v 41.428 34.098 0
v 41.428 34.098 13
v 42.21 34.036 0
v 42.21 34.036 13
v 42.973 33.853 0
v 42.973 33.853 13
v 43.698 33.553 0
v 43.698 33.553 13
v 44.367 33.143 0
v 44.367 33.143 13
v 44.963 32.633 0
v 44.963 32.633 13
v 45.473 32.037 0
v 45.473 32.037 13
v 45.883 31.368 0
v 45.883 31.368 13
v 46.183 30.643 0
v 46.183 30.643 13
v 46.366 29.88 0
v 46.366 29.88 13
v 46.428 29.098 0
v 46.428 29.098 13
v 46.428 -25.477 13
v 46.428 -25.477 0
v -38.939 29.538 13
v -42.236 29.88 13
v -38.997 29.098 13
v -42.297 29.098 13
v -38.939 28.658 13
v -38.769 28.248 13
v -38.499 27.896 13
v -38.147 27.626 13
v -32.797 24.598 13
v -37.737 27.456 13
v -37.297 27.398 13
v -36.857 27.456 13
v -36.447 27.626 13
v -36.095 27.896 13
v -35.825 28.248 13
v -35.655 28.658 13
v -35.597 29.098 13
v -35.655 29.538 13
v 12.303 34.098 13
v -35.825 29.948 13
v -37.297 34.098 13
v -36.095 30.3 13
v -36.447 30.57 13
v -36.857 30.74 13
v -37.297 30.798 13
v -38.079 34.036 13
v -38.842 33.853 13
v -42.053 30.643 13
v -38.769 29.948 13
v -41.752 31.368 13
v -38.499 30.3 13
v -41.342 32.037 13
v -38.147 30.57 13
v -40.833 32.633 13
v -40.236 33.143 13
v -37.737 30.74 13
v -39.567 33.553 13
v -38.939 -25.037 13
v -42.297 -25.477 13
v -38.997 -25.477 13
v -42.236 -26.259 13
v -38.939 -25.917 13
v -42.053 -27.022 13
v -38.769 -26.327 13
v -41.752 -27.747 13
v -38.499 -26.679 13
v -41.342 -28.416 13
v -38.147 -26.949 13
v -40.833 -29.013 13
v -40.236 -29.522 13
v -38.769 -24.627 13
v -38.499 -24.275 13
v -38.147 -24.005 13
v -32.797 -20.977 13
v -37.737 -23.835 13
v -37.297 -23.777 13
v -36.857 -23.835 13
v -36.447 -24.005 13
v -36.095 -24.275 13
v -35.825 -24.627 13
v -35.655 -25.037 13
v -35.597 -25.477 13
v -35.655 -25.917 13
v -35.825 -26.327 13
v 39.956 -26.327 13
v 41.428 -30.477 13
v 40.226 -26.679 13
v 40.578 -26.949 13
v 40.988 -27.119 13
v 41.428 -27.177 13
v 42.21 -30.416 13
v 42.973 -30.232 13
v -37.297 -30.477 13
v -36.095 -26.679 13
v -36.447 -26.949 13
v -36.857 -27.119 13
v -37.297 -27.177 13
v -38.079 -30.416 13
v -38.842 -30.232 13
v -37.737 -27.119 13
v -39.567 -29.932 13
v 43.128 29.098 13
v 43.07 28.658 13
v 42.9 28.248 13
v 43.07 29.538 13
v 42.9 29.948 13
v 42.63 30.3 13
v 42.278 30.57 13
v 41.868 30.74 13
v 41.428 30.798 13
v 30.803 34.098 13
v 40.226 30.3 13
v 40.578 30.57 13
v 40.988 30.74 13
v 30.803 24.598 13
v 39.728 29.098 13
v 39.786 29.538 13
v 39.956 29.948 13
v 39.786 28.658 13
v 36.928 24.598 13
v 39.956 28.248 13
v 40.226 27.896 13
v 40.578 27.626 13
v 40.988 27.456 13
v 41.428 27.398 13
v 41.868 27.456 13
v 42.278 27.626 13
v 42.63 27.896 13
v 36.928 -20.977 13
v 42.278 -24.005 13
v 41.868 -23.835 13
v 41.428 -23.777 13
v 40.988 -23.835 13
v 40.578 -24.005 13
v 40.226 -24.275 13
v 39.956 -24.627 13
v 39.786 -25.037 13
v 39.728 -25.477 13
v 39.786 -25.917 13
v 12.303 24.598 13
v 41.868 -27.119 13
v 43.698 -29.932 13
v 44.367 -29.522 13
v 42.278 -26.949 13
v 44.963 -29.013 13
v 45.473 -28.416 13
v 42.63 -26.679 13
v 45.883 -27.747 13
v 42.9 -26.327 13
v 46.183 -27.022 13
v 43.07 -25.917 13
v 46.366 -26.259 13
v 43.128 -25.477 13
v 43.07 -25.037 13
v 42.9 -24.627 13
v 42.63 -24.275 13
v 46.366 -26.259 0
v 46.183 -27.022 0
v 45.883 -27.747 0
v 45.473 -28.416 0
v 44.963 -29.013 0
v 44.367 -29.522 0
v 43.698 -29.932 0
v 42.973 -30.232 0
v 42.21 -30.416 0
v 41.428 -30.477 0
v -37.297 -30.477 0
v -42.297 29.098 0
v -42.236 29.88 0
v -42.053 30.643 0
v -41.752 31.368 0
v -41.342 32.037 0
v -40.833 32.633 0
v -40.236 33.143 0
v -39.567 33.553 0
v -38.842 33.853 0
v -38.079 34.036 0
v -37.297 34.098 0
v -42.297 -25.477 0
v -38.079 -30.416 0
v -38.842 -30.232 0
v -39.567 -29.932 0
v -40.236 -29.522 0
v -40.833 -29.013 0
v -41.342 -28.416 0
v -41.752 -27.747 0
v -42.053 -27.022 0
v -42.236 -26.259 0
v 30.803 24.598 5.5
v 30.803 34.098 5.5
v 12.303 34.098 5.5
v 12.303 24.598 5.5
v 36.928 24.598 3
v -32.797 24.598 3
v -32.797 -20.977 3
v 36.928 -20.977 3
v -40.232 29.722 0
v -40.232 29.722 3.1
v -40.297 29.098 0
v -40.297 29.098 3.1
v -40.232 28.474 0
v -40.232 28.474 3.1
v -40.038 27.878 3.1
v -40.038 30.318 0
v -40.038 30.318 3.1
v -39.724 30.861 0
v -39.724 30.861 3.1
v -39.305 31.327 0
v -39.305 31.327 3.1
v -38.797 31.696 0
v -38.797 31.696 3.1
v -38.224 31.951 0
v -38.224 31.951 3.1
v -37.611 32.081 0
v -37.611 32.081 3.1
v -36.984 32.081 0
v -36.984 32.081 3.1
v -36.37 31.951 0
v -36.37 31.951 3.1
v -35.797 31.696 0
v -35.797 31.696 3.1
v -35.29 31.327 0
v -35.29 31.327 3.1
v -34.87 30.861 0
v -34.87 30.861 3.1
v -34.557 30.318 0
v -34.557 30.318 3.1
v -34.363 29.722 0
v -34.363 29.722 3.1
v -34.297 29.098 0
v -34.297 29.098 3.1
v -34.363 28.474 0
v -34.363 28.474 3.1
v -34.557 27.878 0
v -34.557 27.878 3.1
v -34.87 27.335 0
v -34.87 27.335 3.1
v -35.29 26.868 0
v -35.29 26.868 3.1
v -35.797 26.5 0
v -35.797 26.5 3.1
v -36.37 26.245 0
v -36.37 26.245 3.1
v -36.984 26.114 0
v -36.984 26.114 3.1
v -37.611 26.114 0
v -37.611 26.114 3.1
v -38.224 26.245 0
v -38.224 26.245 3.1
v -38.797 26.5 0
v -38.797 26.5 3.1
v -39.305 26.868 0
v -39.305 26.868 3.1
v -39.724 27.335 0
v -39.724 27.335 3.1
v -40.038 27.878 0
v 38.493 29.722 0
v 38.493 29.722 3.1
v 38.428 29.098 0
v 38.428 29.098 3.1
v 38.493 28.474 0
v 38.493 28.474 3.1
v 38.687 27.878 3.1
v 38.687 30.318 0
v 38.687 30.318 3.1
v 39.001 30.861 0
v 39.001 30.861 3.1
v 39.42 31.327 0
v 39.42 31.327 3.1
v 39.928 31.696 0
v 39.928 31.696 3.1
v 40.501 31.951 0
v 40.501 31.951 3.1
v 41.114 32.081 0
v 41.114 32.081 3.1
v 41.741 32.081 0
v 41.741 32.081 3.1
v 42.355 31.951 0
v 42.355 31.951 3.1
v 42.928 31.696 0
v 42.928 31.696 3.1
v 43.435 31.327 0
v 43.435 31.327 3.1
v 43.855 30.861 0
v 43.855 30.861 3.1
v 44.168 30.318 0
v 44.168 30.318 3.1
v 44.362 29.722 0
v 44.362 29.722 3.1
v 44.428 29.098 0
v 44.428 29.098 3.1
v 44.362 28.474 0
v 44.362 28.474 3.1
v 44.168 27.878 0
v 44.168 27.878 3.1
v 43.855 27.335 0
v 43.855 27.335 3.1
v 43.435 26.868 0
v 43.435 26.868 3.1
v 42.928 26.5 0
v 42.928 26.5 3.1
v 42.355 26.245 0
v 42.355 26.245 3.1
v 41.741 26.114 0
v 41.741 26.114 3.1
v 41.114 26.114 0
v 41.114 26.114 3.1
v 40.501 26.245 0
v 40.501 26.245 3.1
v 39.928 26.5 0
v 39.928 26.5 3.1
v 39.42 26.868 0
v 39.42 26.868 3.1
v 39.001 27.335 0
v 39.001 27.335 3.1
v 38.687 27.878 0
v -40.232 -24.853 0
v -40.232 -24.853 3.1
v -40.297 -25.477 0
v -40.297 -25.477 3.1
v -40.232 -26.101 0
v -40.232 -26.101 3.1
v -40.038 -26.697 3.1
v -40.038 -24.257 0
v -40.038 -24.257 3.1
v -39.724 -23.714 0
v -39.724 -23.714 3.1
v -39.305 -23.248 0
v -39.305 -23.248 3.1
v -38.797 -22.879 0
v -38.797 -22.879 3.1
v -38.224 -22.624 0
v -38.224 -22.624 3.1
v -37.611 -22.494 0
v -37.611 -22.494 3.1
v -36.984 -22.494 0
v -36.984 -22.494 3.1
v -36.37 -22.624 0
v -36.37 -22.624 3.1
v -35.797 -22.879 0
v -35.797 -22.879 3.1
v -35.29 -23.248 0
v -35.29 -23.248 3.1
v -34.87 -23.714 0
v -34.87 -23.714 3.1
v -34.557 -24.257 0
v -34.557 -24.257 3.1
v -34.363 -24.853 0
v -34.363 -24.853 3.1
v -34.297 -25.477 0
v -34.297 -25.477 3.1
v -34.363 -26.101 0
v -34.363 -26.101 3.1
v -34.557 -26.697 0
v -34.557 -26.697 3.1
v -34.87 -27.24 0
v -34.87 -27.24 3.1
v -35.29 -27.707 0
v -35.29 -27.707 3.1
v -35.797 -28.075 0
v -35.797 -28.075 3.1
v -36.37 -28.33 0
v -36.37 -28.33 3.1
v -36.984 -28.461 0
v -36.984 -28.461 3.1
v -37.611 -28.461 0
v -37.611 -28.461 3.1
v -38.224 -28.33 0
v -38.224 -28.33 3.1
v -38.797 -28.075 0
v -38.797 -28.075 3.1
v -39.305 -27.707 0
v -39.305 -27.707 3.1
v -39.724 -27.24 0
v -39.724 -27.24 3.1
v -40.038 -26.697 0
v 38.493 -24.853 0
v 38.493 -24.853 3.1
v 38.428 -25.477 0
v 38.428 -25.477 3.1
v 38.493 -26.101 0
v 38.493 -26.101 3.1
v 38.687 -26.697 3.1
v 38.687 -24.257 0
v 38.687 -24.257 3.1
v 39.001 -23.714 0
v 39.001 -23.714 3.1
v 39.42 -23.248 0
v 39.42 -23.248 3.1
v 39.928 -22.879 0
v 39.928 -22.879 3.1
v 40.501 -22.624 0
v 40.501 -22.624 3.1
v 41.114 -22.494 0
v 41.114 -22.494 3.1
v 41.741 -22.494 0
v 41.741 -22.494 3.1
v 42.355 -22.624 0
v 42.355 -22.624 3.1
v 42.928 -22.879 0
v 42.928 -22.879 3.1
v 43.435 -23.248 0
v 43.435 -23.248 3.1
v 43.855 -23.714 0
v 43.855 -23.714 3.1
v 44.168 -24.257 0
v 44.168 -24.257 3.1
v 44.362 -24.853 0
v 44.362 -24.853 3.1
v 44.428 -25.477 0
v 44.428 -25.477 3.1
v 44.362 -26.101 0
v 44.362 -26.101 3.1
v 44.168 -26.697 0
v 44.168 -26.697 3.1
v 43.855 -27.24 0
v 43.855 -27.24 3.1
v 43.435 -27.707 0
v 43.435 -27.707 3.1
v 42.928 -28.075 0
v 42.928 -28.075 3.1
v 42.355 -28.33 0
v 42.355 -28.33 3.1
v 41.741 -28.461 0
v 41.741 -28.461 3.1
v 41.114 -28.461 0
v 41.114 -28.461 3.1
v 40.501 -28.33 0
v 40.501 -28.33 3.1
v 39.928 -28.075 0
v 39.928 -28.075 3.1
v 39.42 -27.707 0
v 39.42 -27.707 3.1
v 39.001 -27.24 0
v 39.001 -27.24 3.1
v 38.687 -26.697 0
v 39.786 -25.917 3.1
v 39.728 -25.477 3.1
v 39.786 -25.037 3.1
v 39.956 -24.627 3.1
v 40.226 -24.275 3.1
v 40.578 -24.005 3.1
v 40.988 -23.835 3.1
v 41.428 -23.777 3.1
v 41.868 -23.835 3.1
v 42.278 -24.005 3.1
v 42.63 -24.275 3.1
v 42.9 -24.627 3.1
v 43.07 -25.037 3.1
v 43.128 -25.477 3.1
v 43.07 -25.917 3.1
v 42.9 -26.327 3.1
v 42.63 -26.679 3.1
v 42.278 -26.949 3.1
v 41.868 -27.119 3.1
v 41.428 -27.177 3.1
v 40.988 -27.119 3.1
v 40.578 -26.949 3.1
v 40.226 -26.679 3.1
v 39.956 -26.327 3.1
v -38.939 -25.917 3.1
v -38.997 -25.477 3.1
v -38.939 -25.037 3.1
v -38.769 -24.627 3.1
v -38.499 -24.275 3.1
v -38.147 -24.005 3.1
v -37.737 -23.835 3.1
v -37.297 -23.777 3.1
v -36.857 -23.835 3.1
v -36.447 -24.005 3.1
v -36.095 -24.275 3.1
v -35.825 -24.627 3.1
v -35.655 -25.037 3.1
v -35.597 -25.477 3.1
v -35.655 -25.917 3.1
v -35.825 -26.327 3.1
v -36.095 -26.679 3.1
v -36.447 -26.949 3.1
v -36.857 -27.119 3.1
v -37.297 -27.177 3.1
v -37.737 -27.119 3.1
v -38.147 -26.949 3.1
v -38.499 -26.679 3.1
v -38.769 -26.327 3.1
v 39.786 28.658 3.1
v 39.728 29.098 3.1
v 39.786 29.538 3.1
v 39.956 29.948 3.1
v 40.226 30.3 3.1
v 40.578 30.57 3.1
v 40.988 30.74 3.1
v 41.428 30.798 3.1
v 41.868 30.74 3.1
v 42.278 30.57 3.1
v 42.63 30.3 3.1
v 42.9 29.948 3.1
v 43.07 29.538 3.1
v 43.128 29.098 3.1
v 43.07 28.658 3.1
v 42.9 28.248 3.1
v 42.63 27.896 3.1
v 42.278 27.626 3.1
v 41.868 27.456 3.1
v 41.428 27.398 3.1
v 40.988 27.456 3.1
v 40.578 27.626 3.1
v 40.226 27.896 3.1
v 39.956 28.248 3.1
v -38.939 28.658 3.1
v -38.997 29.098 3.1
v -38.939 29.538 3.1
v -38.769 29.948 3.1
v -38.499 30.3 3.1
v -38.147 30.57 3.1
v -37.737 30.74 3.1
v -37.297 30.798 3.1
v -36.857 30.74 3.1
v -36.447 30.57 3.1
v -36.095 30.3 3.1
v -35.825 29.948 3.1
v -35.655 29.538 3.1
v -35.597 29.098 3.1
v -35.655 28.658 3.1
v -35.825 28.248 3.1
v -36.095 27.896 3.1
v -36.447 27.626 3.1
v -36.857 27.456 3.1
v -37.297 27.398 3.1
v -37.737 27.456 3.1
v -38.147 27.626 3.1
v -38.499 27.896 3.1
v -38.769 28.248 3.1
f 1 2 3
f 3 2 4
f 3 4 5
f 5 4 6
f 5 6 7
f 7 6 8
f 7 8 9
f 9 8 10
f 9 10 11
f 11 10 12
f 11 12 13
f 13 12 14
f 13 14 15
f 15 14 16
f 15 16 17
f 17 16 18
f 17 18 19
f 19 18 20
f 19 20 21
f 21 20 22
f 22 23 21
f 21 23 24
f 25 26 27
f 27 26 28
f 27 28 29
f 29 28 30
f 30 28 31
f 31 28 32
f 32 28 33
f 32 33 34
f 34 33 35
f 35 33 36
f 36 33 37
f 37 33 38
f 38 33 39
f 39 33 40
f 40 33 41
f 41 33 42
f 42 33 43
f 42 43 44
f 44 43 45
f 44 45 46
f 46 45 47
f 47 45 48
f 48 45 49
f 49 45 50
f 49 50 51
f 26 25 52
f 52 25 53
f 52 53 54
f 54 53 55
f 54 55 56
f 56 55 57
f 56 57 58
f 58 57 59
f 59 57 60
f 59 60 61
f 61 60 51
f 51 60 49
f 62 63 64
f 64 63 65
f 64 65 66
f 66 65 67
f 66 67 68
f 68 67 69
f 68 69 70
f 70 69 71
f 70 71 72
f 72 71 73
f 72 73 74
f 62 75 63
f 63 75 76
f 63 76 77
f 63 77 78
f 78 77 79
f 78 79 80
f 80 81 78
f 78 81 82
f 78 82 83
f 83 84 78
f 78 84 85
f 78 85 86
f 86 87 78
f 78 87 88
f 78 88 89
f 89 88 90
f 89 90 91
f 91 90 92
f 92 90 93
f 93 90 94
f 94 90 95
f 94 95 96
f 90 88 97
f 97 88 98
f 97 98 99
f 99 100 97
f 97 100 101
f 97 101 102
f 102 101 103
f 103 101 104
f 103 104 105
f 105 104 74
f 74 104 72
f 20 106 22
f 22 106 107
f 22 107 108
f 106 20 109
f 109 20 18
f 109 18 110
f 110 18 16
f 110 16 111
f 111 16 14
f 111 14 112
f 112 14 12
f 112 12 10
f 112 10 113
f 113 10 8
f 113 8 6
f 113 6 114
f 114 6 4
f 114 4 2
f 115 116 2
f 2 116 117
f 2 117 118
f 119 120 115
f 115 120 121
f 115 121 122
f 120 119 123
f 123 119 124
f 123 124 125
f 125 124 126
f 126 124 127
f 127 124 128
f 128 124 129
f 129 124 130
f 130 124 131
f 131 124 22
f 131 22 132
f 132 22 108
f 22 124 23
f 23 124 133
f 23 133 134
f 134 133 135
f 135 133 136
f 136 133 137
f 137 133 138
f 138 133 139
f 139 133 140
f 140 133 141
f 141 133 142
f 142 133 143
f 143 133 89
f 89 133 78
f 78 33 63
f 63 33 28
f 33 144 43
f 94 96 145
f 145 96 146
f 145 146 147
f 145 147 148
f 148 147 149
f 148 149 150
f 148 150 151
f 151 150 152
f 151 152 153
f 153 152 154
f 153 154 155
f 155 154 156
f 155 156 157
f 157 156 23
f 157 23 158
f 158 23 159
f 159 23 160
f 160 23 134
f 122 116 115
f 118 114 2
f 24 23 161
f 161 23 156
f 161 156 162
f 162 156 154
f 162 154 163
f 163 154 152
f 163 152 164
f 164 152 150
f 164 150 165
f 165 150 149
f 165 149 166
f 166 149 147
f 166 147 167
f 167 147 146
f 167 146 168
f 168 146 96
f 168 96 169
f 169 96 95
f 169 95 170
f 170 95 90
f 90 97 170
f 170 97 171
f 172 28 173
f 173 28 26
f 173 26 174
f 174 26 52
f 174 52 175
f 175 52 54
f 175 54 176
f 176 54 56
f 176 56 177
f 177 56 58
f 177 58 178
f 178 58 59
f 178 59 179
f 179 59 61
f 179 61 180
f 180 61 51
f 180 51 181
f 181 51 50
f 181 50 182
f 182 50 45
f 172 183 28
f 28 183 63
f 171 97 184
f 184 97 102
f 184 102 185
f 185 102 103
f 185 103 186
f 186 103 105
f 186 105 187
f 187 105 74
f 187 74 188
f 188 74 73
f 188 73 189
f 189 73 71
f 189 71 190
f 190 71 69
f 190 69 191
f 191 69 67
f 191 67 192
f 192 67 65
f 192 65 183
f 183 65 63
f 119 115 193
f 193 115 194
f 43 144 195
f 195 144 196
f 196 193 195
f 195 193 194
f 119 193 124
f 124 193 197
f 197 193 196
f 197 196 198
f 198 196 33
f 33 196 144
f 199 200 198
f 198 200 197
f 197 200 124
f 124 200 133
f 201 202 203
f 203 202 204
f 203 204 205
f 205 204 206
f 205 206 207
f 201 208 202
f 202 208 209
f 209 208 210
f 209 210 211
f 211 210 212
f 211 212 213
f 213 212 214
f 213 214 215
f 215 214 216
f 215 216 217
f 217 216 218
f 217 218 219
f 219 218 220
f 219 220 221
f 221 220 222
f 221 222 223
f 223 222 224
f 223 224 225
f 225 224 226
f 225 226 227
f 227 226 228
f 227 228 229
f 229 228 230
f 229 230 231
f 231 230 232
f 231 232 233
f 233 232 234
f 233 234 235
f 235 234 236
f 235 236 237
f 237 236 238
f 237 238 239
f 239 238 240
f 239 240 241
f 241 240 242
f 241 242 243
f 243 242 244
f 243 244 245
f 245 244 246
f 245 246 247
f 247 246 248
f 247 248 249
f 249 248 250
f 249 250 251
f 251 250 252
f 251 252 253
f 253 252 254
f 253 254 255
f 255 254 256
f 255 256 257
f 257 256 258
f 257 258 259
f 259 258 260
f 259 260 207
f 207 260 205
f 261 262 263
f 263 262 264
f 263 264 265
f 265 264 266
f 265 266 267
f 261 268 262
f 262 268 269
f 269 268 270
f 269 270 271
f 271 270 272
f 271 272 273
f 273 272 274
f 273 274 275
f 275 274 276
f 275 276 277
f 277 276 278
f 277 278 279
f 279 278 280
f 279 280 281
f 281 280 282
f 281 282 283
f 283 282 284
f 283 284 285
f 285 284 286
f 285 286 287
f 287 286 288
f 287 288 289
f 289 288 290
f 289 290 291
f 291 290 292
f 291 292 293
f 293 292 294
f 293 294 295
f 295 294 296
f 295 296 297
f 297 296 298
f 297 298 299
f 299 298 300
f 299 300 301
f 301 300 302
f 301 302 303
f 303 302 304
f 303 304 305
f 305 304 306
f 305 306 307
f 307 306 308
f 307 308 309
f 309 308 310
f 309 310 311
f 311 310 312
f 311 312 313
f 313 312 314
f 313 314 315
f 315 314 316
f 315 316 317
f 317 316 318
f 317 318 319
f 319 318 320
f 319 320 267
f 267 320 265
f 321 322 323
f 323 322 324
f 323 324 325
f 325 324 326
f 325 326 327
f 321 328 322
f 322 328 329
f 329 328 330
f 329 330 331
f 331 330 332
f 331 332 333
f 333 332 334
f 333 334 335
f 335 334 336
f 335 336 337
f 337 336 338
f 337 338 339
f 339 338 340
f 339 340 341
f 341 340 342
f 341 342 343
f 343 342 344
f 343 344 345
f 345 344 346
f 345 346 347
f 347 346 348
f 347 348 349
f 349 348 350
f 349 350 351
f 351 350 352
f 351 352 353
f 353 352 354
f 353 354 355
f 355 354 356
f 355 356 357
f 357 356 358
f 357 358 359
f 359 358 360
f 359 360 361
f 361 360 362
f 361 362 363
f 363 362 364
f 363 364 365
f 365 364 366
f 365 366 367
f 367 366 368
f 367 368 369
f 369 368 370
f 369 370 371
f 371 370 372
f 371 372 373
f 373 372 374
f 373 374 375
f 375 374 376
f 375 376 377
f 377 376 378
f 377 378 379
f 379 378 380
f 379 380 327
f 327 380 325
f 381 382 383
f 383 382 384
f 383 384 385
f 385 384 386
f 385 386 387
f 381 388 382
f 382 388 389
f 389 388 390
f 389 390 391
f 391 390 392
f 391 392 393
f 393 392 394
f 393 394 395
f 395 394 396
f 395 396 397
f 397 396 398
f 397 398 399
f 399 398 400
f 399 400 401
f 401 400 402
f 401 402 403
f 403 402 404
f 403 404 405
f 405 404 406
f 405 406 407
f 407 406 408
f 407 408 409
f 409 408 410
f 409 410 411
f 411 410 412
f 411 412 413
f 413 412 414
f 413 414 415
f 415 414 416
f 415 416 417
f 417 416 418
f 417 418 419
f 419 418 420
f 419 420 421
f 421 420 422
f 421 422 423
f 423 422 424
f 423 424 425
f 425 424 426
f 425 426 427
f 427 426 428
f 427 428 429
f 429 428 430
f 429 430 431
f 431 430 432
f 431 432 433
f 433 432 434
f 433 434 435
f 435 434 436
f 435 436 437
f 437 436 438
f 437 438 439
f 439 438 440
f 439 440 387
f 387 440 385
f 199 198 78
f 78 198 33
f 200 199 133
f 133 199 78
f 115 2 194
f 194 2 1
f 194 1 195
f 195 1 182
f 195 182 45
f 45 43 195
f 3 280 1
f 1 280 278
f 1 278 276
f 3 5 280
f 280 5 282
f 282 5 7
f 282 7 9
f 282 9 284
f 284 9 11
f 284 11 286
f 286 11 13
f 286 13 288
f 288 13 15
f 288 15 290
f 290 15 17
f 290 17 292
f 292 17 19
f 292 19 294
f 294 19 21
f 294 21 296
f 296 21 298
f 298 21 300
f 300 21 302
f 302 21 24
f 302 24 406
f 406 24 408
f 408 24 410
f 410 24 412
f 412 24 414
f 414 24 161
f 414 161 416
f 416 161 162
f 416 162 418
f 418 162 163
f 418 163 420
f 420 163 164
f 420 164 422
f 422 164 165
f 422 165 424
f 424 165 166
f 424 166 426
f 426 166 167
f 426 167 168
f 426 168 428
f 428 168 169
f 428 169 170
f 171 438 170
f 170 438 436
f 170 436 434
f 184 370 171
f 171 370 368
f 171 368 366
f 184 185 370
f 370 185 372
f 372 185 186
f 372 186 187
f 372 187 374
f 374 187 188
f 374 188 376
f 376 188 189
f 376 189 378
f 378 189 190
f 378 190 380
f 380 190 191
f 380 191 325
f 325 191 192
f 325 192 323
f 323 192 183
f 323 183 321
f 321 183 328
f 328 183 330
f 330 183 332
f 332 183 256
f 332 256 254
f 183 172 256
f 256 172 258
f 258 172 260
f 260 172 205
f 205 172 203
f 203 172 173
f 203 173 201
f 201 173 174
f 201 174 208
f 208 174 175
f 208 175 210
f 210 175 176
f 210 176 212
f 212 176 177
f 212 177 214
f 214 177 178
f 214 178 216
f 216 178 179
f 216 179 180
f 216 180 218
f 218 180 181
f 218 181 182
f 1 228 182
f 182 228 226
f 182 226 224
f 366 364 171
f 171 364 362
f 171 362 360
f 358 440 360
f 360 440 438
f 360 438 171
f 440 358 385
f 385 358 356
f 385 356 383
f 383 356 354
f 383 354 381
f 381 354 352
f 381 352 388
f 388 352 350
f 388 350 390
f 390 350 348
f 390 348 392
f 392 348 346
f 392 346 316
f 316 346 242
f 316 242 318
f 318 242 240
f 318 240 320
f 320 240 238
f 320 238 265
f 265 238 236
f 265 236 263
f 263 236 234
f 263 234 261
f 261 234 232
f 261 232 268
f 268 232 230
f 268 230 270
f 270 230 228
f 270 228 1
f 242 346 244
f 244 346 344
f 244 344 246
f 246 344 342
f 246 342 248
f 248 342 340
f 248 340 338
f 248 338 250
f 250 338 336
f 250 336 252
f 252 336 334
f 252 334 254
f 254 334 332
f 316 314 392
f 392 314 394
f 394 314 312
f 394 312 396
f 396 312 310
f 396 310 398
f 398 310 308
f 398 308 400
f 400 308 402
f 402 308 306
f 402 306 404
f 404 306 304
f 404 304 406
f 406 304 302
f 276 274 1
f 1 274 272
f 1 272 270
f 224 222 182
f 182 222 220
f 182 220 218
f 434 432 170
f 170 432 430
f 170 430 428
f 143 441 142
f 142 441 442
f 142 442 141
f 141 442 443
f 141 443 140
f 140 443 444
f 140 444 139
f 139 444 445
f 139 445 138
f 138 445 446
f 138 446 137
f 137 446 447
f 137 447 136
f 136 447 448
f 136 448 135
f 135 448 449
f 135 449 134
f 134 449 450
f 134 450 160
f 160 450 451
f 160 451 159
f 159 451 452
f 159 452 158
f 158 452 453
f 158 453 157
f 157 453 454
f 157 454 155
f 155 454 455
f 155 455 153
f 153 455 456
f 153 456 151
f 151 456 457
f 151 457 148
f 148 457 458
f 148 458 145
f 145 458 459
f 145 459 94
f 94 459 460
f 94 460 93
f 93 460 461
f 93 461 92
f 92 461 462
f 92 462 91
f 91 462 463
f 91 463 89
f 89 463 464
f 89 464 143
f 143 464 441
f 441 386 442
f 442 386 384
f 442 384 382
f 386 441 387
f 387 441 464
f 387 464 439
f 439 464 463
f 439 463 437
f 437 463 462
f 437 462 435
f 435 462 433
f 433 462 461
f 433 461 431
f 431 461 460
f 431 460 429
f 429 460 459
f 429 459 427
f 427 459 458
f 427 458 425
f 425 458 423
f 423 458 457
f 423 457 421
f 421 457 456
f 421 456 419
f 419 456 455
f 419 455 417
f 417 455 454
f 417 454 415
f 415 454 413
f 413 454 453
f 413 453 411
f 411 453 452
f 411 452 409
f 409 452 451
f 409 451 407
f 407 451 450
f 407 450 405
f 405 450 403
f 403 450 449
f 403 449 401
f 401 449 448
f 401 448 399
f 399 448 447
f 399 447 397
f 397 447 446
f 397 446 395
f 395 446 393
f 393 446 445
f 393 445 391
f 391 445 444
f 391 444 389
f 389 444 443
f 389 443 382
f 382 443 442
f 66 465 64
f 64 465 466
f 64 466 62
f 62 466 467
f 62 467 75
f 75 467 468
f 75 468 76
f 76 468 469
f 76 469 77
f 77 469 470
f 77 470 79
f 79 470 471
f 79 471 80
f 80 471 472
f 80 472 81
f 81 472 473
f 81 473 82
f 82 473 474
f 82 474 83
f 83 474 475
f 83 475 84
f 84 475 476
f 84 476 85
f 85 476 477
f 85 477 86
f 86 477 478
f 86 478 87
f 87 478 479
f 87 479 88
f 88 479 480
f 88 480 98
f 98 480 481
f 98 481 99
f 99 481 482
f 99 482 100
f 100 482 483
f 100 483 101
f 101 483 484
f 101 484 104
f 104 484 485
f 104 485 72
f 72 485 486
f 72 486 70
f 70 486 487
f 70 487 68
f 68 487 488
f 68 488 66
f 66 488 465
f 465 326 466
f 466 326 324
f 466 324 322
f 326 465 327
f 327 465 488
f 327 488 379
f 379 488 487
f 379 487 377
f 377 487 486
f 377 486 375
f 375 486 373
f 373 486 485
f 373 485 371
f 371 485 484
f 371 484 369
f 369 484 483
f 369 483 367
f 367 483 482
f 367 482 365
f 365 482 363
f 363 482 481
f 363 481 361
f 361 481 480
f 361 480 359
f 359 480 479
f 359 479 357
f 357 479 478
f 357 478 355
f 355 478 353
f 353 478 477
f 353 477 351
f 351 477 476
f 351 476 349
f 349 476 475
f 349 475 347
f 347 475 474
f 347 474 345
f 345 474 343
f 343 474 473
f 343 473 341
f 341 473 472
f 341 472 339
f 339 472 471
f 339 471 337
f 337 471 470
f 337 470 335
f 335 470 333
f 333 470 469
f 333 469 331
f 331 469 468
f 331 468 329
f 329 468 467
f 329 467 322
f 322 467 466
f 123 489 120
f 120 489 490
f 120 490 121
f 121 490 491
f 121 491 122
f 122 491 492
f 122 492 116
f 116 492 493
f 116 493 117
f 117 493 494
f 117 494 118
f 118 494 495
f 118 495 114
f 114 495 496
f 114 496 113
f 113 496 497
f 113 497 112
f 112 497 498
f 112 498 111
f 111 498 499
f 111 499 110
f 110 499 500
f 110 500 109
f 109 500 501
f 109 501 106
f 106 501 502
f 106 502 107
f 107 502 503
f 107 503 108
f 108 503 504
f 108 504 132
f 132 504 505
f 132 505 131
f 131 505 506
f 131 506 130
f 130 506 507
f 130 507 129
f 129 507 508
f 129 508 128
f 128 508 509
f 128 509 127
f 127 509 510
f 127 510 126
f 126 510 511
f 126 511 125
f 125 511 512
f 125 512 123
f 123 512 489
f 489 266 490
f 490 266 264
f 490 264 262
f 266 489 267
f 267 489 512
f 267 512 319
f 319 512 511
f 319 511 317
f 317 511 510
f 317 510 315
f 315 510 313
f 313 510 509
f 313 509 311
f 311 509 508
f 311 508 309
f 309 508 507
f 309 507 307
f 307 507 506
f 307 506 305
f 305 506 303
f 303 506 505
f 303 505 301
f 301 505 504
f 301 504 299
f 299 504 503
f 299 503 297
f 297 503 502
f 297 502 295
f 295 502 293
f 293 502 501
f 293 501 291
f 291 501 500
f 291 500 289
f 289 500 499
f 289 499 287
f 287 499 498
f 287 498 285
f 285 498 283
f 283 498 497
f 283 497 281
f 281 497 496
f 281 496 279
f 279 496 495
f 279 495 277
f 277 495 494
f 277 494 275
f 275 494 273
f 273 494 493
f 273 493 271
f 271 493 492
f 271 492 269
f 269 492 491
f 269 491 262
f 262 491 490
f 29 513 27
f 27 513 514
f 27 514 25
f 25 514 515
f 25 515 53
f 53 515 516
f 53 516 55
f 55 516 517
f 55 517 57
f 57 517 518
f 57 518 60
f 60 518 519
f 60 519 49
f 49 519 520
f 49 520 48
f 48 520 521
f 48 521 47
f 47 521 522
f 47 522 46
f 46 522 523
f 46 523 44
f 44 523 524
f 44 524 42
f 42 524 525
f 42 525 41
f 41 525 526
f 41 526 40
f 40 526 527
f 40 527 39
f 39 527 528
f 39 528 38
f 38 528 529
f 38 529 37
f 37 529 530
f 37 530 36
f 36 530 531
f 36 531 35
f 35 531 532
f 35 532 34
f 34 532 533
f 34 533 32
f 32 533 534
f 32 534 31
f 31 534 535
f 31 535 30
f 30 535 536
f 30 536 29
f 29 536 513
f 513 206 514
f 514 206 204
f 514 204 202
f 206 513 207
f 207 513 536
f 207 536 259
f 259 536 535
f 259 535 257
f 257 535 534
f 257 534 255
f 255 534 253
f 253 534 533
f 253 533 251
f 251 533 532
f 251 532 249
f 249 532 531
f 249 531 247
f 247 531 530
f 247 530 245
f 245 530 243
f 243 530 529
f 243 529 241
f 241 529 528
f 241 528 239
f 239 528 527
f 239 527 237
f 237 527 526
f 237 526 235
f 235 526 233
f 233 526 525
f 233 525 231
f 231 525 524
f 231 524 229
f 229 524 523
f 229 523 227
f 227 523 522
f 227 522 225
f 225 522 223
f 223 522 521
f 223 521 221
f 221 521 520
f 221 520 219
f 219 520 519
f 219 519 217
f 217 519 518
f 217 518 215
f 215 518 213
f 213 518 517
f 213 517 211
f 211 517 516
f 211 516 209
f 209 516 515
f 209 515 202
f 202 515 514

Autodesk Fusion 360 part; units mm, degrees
sketch "Sketch1" plane through (0, 0, 0) normal (0, 0, 1) x (1, 0, 0)
  line L0 (-32.7972, 24.5979) -> (36.9278, 24.5979)
  line L1 (36.9278, 24.5979) -> (36.9278, -20.9771)
  line L2 (36.9278, -20.9771) -> (-32.7972, -20.9771)
  line L3 (-32.7972, -20.9771) -> (-32.7972, 24.5979)
  line L4 (-42.2972, 34.0979) -> (46.4278, 34.0979)
  line L5 (46.4278, 34.0979) -> (46.4278, -30.4771)
  line L6 (46.4278, -30.4771) -> (-42.2972, -30.4771)
  line L7 (-42.2972, -30.4771) -> (-42.2972, 34.0979)
  circle A0 centre (-37.2972, 29.0979) radius 1.7
  circle A1 centre (-37.2972, 29.0979) radius 3
  circle A2 centre (41.4278, 29.0979) radius 1.7
  circle A3 centre (41.4278, 29.0979) radius 3
  circle A4 centre (41.4278, -25.4771) radius 1.7
  circle A5 centre (41.4278, -25.4771) radius 3
  circle A6 centre (-37.2972, -25.4771) radius 1.7
  circle A7 centre (-37.2972, -25.4771) radius 3
  dimension "d14" = 6
  dimension "d18" = 6
  dimension "d22" = 6
extrude "Extrude1" add sketch "Sketch1" along normal blind 9.9 from surface at 3.1 contours A1 | A3 | A5 | A7 makes body 1 at (44.424, 28.9484, 9.7) makes body 2 at (-34.301, -25.6266, 9.7) makes body 3 at (-34.301, 28.9484, 9.7) makes body 4 at (44.424, -25.6266, 9.7)
extrude "Extrude2" add sketch "Sketch1" along normal blind 13 contours L4 L5 L6 L7 bodies 1 2 3 4
extrude "Extrude3" add sketch "Sketch1" along normal blind 3 contours L0 L1 L2 L3 bodies 1
sketch "Sketch2" plane through (0, 0, 13) normal (0, 0, 1) x (-1, 0, 0)
  circle A0 centre (-41.4278, -29.0979) radius 1.7
  circle A1 centre (-41.4278, 25.4771) radius 1.7
  line L0 (-36.9278, 20.9771) -> (32.7972, 20.9771)
  line L1 (32.7972, 20.9771) -> (32.7972, -24.5979)
  line L2 (32.7972, -24.5979) -> (-36.9278, -24.5979)
  line L3 (-36.9278, -24.5979) -> (-36.9278, 20.9771)
  line L4 (42.2972, 30.4771) -> (-46.4278, 30.4771)
  line L5 (-46.4278, 30.4771) -> (-46.4278, -34.0979)
  line L6 (-46.4278, -34.0979) -> (42.2972, -34.0979)
  line L7 (42.2972, -34.0979) -> (42.2972, 30.4771)
  circle A2 centre (37.2972, 25.4771) radius 1.7
  circle A3 centre (37.2972, -29.0979) radius 1.7
  line L8 (-12.3028, -34.0979) -> (-30.8028, -34.0979)
  line L9 (-30.8028, -34.0979) -> (-30.8028, -24.5979)
  line L10 (-30.8028, -24.5979) -> (-12.3028, -24.5979)
  line L11 (-12.3028, -24.5979) -> (-12.3028, -34.0979)
  line L12 (42.2972, 30.4771) -> (42.2972, -34.0979)
  dimension "d30" = 18.5
  dimension "d31" = 54.6
extrude "Extrude4" cut sketch "Sketch2" against normal blind 7.5 contours L2 L6 L8 L9 L10 L11 bodies 1
fillet "Fillet1" radius 5 4 edges at (-42.2972, -30.4771, 6.5) (-42.2972, 34.0979, 6.5) (46.4278, -30.4771, 6.5) (46.4278, 34.0979, 6.5) on bodies 1
